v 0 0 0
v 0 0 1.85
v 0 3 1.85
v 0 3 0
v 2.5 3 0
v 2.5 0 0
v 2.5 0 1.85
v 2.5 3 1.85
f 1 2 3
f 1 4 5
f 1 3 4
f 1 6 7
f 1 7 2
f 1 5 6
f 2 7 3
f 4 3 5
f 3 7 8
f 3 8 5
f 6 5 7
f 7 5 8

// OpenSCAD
/* Warning, this is a very basic generator with a lot of approximation 
input data : [QFN, M8A, 2.5x3.0x1.85mm, 20, , A, C04-01054A]
generated by com.zoubworld.electronics.cad.model3d.Basic
Date : Sun Feb 15 10:50:49 CET 2026
*/

//body
color("black")
translate([0,0,0])
cube([2.5,3.0,1.85], center=false);
